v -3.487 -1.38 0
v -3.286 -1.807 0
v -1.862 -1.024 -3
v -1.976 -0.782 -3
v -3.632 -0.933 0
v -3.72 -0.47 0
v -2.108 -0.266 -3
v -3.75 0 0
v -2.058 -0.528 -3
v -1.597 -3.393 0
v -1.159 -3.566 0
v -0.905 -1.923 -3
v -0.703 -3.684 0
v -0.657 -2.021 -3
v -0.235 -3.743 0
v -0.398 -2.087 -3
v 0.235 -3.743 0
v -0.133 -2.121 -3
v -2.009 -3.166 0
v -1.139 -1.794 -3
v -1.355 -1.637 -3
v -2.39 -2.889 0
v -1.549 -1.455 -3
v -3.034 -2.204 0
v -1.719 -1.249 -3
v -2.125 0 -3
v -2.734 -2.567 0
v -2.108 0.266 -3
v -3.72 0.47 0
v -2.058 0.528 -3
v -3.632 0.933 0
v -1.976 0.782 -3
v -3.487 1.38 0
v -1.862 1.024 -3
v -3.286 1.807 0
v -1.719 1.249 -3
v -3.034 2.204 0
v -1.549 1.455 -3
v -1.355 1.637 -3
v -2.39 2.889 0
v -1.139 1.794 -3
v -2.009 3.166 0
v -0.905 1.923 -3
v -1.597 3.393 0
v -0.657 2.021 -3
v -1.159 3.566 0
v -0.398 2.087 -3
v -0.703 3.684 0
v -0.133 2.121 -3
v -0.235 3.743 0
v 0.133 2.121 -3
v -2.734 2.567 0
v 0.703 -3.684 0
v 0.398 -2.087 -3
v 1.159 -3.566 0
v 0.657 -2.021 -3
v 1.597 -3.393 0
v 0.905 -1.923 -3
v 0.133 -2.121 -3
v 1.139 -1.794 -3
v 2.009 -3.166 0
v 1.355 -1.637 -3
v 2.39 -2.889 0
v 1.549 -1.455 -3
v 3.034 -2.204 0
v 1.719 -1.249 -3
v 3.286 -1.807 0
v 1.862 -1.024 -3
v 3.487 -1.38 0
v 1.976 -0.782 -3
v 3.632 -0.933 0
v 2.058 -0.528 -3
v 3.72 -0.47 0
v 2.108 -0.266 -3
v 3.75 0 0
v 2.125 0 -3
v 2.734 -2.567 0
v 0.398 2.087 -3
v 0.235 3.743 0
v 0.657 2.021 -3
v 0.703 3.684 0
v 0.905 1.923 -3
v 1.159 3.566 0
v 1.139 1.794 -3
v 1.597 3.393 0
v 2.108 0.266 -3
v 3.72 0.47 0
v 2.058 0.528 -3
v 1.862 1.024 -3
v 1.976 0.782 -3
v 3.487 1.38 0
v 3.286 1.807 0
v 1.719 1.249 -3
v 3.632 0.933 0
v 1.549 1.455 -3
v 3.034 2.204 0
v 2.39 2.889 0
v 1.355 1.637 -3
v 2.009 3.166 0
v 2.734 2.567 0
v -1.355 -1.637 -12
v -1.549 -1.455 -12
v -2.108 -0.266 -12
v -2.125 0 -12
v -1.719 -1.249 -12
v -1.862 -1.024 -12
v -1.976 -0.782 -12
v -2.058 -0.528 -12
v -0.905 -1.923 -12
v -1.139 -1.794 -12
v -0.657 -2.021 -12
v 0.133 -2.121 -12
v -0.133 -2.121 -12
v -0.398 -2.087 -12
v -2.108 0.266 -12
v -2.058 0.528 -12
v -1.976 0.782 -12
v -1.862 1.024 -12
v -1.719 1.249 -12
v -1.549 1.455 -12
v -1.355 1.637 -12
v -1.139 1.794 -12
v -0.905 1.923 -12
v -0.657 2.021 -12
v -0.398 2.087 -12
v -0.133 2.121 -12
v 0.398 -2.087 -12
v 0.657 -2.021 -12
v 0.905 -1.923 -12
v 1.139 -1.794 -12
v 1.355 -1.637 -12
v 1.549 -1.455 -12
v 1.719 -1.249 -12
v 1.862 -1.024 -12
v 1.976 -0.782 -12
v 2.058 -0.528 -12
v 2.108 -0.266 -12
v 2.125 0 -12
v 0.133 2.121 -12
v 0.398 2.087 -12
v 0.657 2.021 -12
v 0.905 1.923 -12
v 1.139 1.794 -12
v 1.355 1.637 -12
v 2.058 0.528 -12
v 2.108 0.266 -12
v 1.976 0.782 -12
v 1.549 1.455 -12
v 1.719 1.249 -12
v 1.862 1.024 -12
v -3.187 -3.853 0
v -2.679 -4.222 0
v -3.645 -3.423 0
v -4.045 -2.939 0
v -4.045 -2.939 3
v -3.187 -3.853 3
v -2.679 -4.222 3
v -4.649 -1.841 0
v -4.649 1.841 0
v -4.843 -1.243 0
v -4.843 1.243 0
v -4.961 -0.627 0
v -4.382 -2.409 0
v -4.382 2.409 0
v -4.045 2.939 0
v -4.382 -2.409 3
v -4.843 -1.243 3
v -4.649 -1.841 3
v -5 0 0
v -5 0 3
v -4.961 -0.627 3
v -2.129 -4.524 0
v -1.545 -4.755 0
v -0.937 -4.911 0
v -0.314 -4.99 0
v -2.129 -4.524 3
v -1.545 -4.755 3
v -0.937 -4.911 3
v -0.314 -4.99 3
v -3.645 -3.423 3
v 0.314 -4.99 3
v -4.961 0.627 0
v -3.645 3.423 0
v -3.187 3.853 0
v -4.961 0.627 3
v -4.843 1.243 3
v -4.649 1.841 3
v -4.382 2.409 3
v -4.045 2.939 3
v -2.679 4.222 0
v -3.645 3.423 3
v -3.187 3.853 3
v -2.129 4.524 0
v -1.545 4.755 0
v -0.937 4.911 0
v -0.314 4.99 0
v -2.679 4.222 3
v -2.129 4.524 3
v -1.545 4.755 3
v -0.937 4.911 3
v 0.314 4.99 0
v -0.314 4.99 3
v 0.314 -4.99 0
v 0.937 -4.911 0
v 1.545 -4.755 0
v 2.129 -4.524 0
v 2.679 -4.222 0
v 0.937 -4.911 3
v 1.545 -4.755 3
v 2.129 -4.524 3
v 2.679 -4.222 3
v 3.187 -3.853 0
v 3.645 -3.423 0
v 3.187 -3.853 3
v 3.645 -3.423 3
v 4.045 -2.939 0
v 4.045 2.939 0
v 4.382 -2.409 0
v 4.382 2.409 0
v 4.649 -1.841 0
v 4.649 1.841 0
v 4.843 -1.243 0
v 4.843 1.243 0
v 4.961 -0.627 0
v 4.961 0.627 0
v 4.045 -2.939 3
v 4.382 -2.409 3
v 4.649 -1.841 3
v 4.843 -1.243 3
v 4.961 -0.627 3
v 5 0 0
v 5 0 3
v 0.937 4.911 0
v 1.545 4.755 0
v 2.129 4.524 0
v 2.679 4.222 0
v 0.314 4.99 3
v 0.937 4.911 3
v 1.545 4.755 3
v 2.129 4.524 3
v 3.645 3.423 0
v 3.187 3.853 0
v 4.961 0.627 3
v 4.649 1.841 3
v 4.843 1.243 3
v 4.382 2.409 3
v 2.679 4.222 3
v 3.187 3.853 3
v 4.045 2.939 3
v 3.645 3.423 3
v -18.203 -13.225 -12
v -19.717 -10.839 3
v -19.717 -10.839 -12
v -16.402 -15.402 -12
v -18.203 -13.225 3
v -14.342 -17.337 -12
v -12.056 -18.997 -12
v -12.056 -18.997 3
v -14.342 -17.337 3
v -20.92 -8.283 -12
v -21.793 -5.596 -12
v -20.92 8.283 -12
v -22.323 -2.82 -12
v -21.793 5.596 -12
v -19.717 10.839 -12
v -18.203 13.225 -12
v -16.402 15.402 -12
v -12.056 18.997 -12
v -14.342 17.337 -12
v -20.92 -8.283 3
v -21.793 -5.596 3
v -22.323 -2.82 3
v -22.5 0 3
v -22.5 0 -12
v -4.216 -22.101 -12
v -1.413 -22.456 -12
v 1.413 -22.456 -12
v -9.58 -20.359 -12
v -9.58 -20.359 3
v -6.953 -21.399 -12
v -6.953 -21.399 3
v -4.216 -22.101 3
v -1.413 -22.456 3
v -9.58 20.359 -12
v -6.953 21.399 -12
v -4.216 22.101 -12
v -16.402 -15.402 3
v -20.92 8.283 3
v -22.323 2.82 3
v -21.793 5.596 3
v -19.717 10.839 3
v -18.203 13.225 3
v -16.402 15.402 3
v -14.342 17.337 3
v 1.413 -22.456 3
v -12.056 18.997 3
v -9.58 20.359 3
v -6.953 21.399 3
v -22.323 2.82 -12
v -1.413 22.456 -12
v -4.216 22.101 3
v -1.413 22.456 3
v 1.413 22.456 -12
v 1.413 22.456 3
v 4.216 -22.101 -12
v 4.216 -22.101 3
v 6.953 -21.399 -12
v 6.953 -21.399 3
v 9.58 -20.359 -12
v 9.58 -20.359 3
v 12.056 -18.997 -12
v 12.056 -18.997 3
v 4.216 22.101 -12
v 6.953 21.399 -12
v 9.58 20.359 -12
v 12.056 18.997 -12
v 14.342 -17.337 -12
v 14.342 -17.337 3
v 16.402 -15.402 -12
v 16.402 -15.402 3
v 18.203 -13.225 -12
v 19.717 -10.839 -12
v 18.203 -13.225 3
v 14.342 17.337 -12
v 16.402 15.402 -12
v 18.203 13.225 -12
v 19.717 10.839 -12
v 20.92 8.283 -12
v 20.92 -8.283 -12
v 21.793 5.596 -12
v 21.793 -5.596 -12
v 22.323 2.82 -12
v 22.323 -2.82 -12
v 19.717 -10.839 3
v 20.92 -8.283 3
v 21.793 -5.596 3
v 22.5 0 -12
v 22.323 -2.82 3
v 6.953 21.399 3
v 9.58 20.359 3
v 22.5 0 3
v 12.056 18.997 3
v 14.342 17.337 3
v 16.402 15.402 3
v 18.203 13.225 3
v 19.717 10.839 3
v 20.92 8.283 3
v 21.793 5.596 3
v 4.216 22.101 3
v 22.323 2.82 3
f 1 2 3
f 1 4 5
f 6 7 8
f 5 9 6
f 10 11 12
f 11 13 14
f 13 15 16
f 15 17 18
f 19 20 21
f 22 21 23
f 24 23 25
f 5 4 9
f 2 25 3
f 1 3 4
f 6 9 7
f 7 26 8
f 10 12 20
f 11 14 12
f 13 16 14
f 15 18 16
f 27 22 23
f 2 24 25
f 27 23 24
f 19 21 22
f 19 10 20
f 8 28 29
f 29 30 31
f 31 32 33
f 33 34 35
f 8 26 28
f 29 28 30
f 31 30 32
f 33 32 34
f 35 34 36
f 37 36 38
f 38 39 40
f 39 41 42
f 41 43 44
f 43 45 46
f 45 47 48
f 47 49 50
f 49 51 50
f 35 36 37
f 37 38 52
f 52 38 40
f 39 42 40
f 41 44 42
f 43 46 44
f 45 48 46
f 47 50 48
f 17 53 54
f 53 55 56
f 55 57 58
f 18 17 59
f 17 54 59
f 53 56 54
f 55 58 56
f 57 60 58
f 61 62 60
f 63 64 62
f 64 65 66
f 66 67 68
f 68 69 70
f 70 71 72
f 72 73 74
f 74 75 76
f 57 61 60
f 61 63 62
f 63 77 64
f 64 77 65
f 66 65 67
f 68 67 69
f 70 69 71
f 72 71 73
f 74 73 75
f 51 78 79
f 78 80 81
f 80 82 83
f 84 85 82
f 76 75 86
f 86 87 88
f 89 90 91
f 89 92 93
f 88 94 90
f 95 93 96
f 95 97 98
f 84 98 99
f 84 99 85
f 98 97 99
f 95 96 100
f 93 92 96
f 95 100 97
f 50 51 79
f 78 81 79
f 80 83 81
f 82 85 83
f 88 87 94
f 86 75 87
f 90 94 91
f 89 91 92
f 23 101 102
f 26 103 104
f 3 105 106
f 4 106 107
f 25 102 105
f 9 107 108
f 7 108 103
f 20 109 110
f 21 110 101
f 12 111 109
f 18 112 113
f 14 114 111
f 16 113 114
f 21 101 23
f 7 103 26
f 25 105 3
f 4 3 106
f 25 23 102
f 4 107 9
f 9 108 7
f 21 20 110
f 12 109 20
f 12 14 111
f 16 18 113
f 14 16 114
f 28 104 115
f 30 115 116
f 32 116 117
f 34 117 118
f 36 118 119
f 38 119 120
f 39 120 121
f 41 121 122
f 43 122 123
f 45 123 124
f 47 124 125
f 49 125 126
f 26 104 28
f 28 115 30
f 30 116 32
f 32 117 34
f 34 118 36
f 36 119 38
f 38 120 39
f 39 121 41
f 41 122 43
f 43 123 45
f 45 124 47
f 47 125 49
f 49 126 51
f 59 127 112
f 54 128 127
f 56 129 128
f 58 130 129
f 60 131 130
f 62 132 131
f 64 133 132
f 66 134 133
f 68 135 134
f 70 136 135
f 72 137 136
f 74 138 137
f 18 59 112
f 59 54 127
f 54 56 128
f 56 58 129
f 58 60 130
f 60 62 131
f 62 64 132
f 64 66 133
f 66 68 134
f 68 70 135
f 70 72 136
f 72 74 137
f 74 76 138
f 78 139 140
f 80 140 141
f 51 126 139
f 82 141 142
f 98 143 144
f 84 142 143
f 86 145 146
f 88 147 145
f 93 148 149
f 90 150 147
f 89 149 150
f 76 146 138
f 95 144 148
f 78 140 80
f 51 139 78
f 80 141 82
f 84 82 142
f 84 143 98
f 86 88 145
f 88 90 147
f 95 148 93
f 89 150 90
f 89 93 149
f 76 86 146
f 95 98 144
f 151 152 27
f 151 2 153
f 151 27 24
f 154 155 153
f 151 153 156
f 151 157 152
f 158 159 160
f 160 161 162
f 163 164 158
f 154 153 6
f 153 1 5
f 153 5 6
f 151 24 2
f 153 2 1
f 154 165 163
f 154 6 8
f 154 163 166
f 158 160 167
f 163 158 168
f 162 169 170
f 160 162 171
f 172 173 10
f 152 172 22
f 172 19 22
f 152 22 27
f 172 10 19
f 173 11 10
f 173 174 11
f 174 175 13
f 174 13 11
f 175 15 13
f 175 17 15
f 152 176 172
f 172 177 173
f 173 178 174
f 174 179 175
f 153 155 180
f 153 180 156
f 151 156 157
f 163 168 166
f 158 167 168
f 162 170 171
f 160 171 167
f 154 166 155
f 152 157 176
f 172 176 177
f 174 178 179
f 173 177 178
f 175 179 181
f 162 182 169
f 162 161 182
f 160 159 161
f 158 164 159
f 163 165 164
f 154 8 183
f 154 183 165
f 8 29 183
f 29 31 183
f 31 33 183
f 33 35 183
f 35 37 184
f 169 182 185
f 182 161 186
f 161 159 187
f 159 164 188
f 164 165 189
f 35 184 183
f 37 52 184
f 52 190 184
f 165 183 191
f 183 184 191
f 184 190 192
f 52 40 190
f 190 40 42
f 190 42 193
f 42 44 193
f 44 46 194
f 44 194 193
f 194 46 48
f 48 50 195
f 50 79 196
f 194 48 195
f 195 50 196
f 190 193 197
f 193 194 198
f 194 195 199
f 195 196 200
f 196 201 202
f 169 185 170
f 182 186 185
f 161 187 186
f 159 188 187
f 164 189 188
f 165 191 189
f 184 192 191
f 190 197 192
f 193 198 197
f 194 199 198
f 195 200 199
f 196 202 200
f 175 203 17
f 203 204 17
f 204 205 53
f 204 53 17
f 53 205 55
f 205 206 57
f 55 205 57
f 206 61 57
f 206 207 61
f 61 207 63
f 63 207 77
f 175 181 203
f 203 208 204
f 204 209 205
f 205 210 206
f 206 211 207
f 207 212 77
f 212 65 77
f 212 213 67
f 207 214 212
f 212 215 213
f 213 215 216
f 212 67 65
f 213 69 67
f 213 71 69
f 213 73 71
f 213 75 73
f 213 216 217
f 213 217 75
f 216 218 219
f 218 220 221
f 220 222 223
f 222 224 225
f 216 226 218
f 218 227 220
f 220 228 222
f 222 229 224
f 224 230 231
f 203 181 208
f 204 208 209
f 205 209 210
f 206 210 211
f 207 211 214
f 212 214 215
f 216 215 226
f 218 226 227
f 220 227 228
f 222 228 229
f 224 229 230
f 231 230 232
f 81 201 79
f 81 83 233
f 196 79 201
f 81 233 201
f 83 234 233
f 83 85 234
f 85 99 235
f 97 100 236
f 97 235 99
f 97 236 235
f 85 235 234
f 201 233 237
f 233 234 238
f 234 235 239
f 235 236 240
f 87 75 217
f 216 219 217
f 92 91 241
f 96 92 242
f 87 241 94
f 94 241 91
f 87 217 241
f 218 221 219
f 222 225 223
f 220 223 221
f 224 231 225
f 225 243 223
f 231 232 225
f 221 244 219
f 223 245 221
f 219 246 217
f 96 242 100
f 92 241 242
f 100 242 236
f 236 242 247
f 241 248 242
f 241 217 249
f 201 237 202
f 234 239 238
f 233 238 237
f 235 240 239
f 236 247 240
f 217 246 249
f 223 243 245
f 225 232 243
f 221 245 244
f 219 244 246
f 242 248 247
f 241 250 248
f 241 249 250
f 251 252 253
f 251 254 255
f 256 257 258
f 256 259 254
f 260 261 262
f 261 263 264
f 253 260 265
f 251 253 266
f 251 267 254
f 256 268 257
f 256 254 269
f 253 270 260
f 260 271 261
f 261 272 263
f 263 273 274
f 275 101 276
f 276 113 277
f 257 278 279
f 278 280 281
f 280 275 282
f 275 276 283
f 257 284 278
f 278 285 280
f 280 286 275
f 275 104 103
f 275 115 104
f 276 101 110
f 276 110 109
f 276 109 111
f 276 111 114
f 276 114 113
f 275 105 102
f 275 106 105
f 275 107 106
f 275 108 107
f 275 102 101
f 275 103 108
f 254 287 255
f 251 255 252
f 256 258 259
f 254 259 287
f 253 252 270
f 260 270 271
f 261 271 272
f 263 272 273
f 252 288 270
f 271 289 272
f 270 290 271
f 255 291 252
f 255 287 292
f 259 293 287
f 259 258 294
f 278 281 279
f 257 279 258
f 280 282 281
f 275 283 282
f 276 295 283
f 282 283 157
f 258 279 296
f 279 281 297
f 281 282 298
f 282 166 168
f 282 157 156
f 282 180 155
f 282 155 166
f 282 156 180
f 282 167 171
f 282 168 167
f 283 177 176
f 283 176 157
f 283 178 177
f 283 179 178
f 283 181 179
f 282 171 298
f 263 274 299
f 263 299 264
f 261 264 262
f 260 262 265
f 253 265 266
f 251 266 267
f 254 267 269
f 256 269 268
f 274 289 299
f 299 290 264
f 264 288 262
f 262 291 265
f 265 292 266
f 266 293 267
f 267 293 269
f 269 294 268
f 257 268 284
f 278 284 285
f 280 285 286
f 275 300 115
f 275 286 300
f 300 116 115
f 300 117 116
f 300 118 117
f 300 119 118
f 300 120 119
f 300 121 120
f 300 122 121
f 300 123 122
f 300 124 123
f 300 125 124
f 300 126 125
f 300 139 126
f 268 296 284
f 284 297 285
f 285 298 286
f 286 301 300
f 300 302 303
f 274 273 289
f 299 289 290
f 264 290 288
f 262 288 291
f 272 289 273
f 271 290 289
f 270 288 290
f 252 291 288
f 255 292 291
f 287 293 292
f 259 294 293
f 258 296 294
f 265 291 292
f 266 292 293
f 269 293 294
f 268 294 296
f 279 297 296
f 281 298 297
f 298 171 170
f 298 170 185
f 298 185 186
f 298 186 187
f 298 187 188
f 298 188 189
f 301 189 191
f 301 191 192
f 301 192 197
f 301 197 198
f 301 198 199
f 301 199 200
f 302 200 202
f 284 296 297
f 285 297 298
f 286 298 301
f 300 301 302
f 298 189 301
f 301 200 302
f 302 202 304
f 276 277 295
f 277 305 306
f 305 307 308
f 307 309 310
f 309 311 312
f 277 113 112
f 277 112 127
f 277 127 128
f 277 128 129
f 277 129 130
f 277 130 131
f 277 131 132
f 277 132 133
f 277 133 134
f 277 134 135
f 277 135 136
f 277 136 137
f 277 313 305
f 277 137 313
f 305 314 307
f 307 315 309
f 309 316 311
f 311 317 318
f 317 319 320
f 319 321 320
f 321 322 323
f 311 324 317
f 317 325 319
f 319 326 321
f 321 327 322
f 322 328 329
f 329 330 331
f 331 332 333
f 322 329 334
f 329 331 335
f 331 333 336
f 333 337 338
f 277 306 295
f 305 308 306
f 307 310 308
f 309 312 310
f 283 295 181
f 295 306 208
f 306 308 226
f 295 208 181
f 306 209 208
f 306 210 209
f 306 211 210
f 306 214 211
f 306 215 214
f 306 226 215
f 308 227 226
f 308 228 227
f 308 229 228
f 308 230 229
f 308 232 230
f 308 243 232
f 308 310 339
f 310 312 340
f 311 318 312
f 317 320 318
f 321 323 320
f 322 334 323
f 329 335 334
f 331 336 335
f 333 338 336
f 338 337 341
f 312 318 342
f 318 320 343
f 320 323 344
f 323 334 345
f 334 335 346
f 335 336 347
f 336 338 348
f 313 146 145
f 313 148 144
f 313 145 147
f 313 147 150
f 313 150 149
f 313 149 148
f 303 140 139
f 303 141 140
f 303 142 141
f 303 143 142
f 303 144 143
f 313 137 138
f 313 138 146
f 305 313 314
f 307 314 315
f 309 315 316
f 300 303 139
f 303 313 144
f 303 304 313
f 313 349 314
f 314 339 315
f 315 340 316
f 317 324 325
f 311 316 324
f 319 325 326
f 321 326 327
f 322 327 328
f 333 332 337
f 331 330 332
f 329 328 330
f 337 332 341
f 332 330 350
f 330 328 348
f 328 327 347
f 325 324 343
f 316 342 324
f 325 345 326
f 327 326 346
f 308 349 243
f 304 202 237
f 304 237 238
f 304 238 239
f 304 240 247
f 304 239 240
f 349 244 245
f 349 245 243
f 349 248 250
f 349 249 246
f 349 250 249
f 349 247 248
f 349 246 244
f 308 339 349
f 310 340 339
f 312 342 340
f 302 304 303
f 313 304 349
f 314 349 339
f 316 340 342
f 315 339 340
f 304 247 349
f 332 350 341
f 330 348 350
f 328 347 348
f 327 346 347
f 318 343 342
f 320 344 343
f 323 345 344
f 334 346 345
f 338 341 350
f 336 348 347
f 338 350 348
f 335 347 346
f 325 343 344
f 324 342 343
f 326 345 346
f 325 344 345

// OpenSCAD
$fn = 50;


difference() {
	union() {
		translate(v = [0, 0, -12.0000000000]) {
			cylinder(h = 15, r = 22.5000000000);
		}
	}
	union() {
		translate(v = [0, 0, 0]) {
			rotate(a = [0, 0, 0]) {
				difference() {
					union() {
						translate(v = [0, 0, -15.0000000000]) {
							cylinder(h = 15, r = 2.0000000000);
						}
						translate(v = [0, 0, -3]) {
							cylinder(h = 3, r1 = 2.1250000000, r2 = 3.7500000000);
						}
						translate(v = [0, 0, -15.0000000000]) {
							cylinder(h = 15, r = 2.1250000000);
						}
						translate(v = [0, 0, -15.0000000000]) {
							cylinder(h = 15, r = 2.0000000000);
						}
					}
					union();
				}
			}
		}
		#cylinder(h = 3, r = 5.0000000000);
	}
}
